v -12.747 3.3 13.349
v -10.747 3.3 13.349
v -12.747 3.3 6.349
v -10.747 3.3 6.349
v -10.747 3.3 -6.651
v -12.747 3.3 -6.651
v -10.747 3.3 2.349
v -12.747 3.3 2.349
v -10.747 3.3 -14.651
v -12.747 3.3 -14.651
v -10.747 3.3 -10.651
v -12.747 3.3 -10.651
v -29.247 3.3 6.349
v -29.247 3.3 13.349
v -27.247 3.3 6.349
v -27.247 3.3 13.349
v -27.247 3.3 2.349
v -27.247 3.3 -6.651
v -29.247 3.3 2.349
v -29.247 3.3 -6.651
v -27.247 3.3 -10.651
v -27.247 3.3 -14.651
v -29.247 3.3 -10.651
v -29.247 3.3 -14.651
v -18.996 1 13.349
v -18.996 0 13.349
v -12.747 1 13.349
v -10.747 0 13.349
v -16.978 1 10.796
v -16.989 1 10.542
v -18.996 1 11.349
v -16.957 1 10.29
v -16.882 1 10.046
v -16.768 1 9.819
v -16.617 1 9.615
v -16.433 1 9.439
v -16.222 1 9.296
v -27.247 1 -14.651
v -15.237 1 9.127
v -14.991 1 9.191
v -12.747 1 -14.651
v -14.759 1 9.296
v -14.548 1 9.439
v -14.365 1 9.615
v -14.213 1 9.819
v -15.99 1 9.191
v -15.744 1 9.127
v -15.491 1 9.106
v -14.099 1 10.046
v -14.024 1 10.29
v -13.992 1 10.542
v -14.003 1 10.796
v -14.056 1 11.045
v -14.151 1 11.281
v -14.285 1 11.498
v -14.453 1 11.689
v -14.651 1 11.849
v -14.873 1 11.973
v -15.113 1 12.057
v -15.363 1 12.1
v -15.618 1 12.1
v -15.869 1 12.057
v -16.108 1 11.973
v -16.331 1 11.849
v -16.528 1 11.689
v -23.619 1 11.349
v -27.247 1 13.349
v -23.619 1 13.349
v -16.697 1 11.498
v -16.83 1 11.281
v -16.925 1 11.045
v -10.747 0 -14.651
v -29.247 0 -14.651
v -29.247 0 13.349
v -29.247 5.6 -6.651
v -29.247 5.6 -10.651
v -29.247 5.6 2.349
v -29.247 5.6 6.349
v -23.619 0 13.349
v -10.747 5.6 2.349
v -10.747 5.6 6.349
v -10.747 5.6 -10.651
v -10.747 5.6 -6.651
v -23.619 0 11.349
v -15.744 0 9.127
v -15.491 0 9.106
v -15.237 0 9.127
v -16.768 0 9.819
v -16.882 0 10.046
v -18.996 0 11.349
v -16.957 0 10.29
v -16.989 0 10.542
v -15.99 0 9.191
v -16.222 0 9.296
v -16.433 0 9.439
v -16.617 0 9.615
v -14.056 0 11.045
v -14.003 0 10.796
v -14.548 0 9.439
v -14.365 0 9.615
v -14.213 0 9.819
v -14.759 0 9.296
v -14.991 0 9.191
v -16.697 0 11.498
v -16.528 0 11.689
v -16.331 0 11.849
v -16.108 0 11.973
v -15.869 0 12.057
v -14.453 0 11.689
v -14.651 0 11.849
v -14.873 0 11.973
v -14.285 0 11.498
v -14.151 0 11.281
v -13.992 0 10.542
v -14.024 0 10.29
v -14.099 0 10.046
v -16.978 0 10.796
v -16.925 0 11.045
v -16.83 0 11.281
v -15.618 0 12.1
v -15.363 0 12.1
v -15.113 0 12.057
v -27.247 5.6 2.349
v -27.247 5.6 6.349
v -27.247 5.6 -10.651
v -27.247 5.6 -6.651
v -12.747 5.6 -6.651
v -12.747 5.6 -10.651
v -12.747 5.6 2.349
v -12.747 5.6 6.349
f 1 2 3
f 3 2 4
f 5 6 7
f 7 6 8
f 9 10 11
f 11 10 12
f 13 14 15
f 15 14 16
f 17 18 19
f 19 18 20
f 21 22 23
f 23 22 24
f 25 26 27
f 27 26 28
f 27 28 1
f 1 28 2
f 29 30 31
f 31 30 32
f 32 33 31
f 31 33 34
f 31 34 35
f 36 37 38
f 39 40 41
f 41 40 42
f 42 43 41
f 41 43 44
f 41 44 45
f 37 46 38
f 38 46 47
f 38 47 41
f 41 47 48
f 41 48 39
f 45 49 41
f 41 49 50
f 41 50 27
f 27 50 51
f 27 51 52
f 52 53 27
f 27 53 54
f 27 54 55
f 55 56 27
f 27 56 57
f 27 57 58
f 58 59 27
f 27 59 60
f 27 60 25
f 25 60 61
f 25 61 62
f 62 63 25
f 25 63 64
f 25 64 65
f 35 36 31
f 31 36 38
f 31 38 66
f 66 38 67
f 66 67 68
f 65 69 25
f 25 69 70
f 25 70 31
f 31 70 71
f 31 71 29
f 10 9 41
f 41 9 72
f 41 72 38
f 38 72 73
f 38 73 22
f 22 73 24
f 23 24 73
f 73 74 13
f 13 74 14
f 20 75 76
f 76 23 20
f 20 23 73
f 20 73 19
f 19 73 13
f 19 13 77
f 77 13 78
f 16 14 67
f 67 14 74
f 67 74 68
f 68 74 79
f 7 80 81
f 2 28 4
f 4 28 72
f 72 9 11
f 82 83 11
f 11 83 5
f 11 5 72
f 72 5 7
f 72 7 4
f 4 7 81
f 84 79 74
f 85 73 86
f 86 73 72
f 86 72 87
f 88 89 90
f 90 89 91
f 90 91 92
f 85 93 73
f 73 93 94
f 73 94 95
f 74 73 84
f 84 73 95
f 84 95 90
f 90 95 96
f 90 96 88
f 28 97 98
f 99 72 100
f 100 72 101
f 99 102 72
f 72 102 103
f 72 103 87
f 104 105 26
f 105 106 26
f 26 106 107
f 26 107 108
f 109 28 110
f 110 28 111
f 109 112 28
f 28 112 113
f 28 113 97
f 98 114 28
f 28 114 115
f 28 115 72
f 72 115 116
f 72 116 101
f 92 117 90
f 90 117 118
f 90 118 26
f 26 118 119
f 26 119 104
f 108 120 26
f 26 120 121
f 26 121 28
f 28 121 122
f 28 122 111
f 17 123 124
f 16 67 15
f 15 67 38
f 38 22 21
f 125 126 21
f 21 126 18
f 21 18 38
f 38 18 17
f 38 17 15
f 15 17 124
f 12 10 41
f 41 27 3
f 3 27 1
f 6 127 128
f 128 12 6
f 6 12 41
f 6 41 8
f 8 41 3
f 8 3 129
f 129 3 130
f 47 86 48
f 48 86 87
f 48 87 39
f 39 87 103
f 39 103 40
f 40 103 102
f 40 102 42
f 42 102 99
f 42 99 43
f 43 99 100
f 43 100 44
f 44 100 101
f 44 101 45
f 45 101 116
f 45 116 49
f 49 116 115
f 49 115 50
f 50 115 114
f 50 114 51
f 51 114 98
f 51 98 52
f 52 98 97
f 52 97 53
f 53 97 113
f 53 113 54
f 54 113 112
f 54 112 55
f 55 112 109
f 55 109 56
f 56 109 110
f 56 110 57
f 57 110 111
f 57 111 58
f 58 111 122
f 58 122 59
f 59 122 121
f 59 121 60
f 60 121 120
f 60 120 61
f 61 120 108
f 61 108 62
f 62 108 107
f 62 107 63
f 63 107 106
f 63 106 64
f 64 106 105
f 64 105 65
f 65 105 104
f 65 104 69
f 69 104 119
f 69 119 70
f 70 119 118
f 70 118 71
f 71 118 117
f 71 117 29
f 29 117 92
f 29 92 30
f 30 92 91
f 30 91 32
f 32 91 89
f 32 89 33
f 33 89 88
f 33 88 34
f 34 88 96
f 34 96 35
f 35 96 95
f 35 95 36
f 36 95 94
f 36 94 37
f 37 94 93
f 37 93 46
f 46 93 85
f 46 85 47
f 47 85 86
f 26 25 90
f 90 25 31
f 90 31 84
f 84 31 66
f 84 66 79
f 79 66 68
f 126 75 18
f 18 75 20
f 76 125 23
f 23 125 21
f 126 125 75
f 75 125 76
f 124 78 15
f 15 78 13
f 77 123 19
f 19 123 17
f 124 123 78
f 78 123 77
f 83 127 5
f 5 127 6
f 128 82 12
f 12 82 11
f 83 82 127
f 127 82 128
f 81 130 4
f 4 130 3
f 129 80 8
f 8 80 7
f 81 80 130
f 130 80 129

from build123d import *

# Parameters (mm, degrees)
MAIN_BOARD_OUTLINE_W = 18.5
MAIN_BOARD_OUTLINE_H = 28
SIDE1_DEPTH          = 1
SKETCH2_W            = 2
SKETCH2_H            = 28
WALLS_DEPTH          = 2.3
SKETCH3_R            = 1.5
SCREW_HOLE_DEPTH     = 2.3
SKETCH4_W            = 4.6228
SKETCH4_H            = 2
CUT_EXTRUDE2_DEPTH   = 2.3
SKETCH5_W            = 2
SKETCH5_H            = 4
BOSS_EXTRUDE3_DEPTH  = 2.3


with BuildPart() as part:
    # main board outline → side1 (new body)
    with BuildSketch(Plane(origin=(0, 0, 0), x_dir=(1, 0, 0), z_dir=(0, 1, 0))):
        with Locations((-19.997374583, 0.651042113)):
            Rectangle(MAIN_BOARD_OUTLINE_W, MAIN_BOARD_OUTLINE_H)
    extrude(amount=SIDE1_DEPTH)

    # Sketch2 → walls (add)
    with BuildSketch(Plane(origin=(0, 1, 0), x_dir=(1, 0, 0), z_dir=(0, 1, 0))):
        with Locations((-28.247374583, 0.651042113)):
            Rectangle(SKETCH2_W, SKETCH2_H)
        with Locations((-11.747374583, 0.651042113)):
            Rectangle(SKETCH2_W, SKETCH2_H)
    extrude(amount=WALLS_DEPTH)

    # Sketch3 → screw hole (cut)
    with BuildSketch(Plane(origin=(0, 0, 0), x_dir=(-1, 0, 0), z_dir=(0, -1, 0))):
        with Locations((15.490574583, -10.605757887)):
            Circle(SKETCH3_R)
    extrude(amount=-SCREW_HOLE_DEPTH, mode=Mode.SUBTRACT)

    # Sketch4 → Cut-Extrude2 (cut)
    with BuildSketch(Plane(origin=(0, 0, 0), x_dir=(-1, 0, 0), z_dir=(0, -1, 0))):
        with Locations((21.307174583, -12.348957887)):
            Rectangle(SKETCH4_W, SKETCH4_H)
    extrude(amount=-CUT_EXTRUDE2_DEPTH, mode=Mode.SUBTRACT)

    # Sketch5 → Boss-Extrude3 (add)
    with BuildSketch(Plane(origin=(0, 3.3, 0), x_dir=(1, 0, 0), z_dir=(0, 1, 0))):
        with Locations((-28.247374583, 8.651042113)):
            Rectangle(SKETCH5_W, SKETCH5_H)
        with Locations((-28.247374583, -4.348957887)):
            Rectangle(SKETCH5_W, SKETCH5_H)
        with Locations((-11.747374583, 8.651042113)):
            Rectangle(SKETCH5_W, SKETCH5_H)
        with Locations((-11.747374583, -4.348957887)):
            Rectangle(SKETCH5_W, SKETCH5_H)
    extrude(amount=BOSS_EXTRUDE3_DEPTH)


solid = part.part
